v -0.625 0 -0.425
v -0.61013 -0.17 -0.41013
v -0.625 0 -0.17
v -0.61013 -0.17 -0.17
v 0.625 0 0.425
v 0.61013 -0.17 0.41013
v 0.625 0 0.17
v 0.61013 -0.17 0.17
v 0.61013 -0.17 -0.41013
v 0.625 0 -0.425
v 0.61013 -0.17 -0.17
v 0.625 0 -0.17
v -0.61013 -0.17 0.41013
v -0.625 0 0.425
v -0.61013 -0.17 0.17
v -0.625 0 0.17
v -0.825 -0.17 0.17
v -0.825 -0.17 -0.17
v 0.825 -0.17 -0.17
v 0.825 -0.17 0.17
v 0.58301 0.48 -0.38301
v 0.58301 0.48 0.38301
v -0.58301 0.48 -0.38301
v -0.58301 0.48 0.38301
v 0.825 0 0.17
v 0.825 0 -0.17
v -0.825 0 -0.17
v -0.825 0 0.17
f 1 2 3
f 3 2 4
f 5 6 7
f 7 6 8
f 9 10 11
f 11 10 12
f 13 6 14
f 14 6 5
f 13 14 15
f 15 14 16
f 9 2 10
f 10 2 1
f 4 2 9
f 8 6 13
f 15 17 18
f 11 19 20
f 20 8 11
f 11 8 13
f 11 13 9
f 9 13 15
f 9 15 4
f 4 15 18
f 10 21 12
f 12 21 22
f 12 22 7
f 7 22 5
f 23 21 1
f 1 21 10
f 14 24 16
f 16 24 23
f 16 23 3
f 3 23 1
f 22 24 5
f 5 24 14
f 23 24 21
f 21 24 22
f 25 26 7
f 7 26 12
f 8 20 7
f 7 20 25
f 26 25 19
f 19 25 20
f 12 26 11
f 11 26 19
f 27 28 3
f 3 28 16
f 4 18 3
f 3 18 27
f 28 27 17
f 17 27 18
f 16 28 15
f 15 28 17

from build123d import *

# Parameters (mm, degrees)
SKETCH1_W                     = 1.25
SKETCH1_H                     = 0.85
BOSS_EXTRUDE1_DEPTH           = 0.48
BOSS_EXTRUDE1_TAPER           = 5
BOSS_EXTRUDE1_OTHER_WAY_DEPTH = 0.17
BOSS_EXTRUDE1_OTHER_WAY_TAPER = 5
BOSS_EXTRUDE2_DEPTH           = 0.17


with BuildPart() as part:
    # Sketch1 → Boss-Extrude1 (new body)
    with BuildSketch(Plane(origin=(0, 0, 0), x_dir=(1, 0, 0), z_dir=(0, 1, 0))):
        Rectangle(SKETCH1_W, SKETCH1_H)
    extrude(amount=BOSS_EXTRUDE1_DEPTH, taper=BOSS_EXTRUDE1_TAPER)

    # Sketch1 → Boss-Extrude1 other way (add)
    with BuildSketch(Plane(origin=(0, 0, 0), x_dir=(1, 0, 0), z_dir=(0, 1, 0))):
        Rectangle(SKETCH1_W, SKETCH1_H)
    extrude(amount=-BOSS_EXTRUDE1_OTHER_WAY_DEPTH, taper=BOSS_EXTRUDE1_OTHER_WAY_TAPER)

    # Sketch4 → Boss-Extrude2 (add)
    with BuildSketch(Plane.XZ.offset(0.17)):
        Polygon((-0.625, -0.17), (-0.583005442, -0.17), (-0.583005442, 0.17), (-0.625, 0.17), (-0.825, 0.17), (-0.825, -0.17), align=None)
        Polygon((0.625, -0.17), (0.825, -0.17), (0.825, 0.17), (0.625, 0.17), (0.583005442, 0.17), (0.583005442, -0.17), align=None)
    extrude(amount=-BOSS_EXTRUDE2_DEPTH)


solid = part.part
